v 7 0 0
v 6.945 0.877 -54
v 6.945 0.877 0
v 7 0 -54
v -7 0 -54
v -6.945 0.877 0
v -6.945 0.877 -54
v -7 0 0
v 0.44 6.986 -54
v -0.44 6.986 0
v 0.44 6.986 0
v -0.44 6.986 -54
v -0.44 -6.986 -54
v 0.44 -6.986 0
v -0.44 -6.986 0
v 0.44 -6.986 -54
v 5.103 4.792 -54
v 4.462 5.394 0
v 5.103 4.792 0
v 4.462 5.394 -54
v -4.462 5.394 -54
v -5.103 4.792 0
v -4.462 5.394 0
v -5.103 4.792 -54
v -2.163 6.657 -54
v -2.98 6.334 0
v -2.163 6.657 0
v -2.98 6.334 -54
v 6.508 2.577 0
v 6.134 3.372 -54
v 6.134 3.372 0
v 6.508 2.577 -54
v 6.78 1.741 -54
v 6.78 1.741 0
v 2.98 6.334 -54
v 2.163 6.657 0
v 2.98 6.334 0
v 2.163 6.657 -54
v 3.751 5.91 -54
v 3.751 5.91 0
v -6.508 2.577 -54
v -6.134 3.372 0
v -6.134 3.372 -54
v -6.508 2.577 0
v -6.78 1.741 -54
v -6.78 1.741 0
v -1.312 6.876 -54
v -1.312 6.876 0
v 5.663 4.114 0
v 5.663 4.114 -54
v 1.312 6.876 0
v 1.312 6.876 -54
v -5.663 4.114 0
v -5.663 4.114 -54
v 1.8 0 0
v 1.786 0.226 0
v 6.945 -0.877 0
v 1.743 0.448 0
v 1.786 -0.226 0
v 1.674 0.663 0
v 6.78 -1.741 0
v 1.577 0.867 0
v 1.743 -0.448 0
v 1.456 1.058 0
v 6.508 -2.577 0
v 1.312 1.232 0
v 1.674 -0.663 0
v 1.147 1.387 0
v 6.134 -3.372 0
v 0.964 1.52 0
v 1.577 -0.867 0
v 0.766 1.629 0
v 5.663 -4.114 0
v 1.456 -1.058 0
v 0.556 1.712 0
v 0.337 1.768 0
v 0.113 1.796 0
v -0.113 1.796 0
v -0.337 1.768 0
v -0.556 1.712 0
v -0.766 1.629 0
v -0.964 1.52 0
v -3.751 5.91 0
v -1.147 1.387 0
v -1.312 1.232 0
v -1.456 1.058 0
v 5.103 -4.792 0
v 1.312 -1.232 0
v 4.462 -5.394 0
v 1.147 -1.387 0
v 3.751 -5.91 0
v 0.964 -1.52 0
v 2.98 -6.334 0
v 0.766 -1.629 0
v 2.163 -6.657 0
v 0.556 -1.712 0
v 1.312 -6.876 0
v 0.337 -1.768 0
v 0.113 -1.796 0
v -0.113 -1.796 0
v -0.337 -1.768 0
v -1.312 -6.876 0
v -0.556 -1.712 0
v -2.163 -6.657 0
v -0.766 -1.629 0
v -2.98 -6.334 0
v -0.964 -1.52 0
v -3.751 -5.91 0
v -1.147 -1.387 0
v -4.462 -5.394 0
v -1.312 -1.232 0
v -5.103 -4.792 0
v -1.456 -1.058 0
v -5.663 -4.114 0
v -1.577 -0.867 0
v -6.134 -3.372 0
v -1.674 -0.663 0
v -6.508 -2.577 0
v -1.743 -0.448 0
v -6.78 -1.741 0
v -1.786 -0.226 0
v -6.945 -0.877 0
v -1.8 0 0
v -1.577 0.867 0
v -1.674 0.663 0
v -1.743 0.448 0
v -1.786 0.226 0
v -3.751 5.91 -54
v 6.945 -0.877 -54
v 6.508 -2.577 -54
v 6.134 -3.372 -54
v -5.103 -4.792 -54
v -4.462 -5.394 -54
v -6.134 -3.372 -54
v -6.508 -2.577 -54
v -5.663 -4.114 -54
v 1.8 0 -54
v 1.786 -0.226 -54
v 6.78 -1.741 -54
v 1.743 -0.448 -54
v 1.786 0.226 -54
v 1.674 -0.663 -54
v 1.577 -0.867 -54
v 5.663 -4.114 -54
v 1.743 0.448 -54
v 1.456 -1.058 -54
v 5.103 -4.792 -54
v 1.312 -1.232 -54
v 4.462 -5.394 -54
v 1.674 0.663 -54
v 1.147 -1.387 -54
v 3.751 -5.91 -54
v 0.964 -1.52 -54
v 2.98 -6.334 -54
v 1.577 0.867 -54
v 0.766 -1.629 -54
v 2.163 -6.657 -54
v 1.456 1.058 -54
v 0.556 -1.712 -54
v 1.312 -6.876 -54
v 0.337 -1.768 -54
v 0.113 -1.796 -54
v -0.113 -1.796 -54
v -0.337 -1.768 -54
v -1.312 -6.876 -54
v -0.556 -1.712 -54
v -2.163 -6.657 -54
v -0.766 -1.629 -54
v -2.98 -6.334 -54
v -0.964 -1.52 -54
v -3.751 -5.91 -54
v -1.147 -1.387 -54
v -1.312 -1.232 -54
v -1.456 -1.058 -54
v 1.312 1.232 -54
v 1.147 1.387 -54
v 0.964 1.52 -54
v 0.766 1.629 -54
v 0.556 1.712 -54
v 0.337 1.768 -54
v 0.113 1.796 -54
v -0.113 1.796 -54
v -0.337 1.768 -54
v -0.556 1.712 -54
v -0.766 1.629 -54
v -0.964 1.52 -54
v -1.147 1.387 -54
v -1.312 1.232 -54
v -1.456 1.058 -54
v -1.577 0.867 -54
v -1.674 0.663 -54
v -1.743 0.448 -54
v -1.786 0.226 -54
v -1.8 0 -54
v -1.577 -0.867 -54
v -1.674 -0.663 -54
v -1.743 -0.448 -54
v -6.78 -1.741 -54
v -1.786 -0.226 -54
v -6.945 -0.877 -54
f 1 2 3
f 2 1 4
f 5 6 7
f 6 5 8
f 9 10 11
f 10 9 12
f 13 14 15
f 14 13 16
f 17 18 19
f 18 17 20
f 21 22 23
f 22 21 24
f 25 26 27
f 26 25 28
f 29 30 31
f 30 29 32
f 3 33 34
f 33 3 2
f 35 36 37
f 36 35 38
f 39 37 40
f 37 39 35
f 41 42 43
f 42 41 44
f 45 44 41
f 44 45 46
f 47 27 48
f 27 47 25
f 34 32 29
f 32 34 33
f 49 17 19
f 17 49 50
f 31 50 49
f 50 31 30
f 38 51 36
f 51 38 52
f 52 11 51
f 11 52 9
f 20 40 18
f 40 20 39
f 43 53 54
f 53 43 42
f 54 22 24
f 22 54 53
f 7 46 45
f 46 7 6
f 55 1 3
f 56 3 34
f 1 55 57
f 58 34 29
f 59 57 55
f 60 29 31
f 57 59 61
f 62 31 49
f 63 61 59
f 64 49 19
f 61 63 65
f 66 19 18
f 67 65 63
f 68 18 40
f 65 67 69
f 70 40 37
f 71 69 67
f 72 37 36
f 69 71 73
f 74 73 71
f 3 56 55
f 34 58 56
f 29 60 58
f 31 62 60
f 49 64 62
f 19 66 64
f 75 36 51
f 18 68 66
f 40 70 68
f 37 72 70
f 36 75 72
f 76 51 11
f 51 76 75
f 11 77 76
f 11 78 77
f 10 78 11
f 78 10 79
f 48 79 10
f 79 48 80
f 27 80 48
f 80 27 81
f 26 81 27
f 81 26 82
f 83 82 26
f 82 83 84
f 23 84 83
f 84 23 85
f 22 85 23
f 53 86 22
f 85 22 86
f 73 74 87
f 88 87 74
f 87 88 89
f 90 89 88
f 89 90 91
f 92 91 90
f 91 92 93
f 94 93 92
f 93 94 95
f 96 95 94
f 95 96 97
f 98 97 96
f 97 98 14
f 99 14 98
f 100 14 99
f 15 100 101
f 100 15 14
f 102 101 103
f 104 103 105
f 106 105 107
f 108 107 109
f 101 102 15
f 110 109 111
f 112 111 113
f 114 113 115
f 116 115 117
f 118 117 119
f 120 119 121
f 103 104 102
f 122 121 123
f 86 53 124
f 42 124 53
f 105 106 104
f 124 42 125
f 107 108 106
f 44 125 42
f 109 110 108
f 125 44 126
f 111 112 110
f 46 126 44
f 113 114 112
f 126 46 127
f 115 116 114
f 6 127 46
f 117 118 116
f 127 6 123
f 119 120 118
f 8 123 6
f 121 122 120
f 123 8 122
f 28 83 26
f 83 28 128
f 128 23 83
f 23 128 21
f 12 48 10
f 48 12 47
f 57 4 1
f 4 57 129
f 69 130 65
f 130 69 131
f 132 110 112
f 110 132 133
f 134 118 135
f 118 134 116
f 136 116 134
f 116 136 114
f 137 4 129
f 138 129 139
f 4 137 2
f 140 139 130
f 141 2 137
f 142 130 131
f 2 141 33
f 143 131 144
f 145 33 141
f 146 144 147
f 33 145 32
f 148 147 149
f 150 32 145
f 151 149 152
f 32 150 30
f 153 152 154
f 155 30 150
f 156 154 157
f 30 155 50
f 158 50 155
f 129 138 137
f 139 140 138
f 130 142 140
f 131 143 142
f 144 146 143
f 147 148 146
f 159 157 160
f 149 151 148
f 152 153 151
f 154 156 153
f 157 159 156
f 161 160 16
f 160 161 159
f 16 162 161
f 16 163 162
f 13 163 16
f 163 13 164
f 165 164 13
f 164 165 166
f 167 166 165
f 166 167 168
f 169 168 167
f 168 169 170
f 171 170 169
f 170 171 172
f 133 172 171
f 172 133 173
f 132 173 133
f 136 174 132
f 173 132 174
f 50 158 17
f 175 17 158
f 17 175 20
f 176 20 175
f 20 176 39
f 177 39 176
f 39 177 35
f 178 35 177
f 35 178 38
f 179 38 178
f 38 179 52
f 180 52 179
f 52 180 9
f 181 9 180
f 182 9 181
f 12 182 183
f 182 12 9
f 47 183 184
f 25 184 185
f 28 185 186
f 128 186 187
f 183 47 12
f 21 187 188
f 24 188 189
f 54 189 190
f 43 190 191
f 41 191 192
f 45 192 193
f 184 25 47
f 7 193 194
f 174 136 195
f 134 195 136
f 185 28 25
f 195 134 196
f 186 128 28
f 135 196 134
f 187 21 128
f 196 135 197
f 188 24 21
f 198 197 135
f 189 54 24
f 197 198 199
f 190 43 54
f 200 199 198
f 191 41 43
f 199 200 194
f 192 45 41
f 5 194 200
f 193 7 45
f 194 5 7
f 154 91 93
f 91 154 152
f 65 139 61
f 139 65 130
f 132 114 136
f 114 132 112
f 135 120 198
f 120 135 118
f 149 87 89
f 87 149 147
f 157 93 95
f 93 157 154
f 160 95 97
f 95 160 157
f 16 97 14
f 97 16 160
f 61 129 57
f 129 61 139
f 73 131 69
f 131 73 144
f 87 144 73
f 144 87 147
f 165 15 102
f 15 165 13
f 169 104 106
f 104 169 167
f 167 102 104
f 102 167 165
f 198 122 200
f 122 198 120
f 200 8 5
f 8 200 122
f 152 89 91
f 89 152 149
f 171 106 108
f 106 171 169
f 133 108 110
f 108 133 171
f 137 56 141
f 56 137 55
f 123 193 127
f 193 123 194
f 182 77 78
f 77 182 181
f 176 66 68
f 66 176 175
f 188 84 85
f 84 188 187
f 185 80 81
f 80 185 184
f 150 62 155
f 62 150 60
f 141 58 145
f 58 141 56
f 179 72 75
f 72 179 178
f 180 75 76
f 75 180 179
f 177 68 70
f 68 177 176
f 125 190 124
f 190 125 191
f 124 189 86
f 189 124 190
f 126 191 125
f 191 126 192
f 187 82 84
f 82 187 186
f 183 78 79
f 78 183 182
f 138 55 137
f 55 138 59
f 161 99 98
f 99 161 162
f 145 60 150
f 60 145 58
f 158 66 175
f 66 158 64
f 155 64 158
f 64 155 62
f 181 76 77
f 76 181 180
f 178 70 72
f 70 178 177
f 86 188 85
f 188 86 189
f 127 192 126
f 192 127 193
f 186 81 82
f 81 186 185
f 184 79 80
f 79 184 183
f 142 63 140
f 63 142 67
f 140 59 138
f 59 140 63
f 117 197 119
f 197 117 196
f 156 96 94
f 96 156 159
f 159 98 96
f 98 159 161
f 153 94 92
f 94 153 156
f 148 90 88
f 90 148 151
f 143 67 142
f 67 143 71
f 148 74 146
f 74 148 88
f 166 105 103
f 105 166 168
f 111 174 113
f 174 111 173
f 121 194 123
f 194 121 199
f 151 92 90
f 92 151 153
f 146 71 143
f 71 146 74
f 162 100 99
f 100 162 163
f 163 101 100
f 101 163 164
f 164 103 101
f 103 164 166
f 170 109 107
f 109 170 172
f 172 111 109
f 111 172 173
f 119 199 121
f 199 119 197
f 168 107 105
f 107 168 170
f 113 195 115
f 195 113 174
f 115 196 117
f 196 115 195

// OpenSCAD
$fn = 50;


difference() {
	union() {
		translate(v = [0, 0, -54.0000000000]) {
			cylinder(h = 54, r = 7.0000000000);
		}
		cylinder(h = 0, r = 10.0000000000);
	}
	union() {
		#translate(v = [0, 0, -54]) {
			cylinder(h = 54, r = 1.8000000000);
		}
	}
}
